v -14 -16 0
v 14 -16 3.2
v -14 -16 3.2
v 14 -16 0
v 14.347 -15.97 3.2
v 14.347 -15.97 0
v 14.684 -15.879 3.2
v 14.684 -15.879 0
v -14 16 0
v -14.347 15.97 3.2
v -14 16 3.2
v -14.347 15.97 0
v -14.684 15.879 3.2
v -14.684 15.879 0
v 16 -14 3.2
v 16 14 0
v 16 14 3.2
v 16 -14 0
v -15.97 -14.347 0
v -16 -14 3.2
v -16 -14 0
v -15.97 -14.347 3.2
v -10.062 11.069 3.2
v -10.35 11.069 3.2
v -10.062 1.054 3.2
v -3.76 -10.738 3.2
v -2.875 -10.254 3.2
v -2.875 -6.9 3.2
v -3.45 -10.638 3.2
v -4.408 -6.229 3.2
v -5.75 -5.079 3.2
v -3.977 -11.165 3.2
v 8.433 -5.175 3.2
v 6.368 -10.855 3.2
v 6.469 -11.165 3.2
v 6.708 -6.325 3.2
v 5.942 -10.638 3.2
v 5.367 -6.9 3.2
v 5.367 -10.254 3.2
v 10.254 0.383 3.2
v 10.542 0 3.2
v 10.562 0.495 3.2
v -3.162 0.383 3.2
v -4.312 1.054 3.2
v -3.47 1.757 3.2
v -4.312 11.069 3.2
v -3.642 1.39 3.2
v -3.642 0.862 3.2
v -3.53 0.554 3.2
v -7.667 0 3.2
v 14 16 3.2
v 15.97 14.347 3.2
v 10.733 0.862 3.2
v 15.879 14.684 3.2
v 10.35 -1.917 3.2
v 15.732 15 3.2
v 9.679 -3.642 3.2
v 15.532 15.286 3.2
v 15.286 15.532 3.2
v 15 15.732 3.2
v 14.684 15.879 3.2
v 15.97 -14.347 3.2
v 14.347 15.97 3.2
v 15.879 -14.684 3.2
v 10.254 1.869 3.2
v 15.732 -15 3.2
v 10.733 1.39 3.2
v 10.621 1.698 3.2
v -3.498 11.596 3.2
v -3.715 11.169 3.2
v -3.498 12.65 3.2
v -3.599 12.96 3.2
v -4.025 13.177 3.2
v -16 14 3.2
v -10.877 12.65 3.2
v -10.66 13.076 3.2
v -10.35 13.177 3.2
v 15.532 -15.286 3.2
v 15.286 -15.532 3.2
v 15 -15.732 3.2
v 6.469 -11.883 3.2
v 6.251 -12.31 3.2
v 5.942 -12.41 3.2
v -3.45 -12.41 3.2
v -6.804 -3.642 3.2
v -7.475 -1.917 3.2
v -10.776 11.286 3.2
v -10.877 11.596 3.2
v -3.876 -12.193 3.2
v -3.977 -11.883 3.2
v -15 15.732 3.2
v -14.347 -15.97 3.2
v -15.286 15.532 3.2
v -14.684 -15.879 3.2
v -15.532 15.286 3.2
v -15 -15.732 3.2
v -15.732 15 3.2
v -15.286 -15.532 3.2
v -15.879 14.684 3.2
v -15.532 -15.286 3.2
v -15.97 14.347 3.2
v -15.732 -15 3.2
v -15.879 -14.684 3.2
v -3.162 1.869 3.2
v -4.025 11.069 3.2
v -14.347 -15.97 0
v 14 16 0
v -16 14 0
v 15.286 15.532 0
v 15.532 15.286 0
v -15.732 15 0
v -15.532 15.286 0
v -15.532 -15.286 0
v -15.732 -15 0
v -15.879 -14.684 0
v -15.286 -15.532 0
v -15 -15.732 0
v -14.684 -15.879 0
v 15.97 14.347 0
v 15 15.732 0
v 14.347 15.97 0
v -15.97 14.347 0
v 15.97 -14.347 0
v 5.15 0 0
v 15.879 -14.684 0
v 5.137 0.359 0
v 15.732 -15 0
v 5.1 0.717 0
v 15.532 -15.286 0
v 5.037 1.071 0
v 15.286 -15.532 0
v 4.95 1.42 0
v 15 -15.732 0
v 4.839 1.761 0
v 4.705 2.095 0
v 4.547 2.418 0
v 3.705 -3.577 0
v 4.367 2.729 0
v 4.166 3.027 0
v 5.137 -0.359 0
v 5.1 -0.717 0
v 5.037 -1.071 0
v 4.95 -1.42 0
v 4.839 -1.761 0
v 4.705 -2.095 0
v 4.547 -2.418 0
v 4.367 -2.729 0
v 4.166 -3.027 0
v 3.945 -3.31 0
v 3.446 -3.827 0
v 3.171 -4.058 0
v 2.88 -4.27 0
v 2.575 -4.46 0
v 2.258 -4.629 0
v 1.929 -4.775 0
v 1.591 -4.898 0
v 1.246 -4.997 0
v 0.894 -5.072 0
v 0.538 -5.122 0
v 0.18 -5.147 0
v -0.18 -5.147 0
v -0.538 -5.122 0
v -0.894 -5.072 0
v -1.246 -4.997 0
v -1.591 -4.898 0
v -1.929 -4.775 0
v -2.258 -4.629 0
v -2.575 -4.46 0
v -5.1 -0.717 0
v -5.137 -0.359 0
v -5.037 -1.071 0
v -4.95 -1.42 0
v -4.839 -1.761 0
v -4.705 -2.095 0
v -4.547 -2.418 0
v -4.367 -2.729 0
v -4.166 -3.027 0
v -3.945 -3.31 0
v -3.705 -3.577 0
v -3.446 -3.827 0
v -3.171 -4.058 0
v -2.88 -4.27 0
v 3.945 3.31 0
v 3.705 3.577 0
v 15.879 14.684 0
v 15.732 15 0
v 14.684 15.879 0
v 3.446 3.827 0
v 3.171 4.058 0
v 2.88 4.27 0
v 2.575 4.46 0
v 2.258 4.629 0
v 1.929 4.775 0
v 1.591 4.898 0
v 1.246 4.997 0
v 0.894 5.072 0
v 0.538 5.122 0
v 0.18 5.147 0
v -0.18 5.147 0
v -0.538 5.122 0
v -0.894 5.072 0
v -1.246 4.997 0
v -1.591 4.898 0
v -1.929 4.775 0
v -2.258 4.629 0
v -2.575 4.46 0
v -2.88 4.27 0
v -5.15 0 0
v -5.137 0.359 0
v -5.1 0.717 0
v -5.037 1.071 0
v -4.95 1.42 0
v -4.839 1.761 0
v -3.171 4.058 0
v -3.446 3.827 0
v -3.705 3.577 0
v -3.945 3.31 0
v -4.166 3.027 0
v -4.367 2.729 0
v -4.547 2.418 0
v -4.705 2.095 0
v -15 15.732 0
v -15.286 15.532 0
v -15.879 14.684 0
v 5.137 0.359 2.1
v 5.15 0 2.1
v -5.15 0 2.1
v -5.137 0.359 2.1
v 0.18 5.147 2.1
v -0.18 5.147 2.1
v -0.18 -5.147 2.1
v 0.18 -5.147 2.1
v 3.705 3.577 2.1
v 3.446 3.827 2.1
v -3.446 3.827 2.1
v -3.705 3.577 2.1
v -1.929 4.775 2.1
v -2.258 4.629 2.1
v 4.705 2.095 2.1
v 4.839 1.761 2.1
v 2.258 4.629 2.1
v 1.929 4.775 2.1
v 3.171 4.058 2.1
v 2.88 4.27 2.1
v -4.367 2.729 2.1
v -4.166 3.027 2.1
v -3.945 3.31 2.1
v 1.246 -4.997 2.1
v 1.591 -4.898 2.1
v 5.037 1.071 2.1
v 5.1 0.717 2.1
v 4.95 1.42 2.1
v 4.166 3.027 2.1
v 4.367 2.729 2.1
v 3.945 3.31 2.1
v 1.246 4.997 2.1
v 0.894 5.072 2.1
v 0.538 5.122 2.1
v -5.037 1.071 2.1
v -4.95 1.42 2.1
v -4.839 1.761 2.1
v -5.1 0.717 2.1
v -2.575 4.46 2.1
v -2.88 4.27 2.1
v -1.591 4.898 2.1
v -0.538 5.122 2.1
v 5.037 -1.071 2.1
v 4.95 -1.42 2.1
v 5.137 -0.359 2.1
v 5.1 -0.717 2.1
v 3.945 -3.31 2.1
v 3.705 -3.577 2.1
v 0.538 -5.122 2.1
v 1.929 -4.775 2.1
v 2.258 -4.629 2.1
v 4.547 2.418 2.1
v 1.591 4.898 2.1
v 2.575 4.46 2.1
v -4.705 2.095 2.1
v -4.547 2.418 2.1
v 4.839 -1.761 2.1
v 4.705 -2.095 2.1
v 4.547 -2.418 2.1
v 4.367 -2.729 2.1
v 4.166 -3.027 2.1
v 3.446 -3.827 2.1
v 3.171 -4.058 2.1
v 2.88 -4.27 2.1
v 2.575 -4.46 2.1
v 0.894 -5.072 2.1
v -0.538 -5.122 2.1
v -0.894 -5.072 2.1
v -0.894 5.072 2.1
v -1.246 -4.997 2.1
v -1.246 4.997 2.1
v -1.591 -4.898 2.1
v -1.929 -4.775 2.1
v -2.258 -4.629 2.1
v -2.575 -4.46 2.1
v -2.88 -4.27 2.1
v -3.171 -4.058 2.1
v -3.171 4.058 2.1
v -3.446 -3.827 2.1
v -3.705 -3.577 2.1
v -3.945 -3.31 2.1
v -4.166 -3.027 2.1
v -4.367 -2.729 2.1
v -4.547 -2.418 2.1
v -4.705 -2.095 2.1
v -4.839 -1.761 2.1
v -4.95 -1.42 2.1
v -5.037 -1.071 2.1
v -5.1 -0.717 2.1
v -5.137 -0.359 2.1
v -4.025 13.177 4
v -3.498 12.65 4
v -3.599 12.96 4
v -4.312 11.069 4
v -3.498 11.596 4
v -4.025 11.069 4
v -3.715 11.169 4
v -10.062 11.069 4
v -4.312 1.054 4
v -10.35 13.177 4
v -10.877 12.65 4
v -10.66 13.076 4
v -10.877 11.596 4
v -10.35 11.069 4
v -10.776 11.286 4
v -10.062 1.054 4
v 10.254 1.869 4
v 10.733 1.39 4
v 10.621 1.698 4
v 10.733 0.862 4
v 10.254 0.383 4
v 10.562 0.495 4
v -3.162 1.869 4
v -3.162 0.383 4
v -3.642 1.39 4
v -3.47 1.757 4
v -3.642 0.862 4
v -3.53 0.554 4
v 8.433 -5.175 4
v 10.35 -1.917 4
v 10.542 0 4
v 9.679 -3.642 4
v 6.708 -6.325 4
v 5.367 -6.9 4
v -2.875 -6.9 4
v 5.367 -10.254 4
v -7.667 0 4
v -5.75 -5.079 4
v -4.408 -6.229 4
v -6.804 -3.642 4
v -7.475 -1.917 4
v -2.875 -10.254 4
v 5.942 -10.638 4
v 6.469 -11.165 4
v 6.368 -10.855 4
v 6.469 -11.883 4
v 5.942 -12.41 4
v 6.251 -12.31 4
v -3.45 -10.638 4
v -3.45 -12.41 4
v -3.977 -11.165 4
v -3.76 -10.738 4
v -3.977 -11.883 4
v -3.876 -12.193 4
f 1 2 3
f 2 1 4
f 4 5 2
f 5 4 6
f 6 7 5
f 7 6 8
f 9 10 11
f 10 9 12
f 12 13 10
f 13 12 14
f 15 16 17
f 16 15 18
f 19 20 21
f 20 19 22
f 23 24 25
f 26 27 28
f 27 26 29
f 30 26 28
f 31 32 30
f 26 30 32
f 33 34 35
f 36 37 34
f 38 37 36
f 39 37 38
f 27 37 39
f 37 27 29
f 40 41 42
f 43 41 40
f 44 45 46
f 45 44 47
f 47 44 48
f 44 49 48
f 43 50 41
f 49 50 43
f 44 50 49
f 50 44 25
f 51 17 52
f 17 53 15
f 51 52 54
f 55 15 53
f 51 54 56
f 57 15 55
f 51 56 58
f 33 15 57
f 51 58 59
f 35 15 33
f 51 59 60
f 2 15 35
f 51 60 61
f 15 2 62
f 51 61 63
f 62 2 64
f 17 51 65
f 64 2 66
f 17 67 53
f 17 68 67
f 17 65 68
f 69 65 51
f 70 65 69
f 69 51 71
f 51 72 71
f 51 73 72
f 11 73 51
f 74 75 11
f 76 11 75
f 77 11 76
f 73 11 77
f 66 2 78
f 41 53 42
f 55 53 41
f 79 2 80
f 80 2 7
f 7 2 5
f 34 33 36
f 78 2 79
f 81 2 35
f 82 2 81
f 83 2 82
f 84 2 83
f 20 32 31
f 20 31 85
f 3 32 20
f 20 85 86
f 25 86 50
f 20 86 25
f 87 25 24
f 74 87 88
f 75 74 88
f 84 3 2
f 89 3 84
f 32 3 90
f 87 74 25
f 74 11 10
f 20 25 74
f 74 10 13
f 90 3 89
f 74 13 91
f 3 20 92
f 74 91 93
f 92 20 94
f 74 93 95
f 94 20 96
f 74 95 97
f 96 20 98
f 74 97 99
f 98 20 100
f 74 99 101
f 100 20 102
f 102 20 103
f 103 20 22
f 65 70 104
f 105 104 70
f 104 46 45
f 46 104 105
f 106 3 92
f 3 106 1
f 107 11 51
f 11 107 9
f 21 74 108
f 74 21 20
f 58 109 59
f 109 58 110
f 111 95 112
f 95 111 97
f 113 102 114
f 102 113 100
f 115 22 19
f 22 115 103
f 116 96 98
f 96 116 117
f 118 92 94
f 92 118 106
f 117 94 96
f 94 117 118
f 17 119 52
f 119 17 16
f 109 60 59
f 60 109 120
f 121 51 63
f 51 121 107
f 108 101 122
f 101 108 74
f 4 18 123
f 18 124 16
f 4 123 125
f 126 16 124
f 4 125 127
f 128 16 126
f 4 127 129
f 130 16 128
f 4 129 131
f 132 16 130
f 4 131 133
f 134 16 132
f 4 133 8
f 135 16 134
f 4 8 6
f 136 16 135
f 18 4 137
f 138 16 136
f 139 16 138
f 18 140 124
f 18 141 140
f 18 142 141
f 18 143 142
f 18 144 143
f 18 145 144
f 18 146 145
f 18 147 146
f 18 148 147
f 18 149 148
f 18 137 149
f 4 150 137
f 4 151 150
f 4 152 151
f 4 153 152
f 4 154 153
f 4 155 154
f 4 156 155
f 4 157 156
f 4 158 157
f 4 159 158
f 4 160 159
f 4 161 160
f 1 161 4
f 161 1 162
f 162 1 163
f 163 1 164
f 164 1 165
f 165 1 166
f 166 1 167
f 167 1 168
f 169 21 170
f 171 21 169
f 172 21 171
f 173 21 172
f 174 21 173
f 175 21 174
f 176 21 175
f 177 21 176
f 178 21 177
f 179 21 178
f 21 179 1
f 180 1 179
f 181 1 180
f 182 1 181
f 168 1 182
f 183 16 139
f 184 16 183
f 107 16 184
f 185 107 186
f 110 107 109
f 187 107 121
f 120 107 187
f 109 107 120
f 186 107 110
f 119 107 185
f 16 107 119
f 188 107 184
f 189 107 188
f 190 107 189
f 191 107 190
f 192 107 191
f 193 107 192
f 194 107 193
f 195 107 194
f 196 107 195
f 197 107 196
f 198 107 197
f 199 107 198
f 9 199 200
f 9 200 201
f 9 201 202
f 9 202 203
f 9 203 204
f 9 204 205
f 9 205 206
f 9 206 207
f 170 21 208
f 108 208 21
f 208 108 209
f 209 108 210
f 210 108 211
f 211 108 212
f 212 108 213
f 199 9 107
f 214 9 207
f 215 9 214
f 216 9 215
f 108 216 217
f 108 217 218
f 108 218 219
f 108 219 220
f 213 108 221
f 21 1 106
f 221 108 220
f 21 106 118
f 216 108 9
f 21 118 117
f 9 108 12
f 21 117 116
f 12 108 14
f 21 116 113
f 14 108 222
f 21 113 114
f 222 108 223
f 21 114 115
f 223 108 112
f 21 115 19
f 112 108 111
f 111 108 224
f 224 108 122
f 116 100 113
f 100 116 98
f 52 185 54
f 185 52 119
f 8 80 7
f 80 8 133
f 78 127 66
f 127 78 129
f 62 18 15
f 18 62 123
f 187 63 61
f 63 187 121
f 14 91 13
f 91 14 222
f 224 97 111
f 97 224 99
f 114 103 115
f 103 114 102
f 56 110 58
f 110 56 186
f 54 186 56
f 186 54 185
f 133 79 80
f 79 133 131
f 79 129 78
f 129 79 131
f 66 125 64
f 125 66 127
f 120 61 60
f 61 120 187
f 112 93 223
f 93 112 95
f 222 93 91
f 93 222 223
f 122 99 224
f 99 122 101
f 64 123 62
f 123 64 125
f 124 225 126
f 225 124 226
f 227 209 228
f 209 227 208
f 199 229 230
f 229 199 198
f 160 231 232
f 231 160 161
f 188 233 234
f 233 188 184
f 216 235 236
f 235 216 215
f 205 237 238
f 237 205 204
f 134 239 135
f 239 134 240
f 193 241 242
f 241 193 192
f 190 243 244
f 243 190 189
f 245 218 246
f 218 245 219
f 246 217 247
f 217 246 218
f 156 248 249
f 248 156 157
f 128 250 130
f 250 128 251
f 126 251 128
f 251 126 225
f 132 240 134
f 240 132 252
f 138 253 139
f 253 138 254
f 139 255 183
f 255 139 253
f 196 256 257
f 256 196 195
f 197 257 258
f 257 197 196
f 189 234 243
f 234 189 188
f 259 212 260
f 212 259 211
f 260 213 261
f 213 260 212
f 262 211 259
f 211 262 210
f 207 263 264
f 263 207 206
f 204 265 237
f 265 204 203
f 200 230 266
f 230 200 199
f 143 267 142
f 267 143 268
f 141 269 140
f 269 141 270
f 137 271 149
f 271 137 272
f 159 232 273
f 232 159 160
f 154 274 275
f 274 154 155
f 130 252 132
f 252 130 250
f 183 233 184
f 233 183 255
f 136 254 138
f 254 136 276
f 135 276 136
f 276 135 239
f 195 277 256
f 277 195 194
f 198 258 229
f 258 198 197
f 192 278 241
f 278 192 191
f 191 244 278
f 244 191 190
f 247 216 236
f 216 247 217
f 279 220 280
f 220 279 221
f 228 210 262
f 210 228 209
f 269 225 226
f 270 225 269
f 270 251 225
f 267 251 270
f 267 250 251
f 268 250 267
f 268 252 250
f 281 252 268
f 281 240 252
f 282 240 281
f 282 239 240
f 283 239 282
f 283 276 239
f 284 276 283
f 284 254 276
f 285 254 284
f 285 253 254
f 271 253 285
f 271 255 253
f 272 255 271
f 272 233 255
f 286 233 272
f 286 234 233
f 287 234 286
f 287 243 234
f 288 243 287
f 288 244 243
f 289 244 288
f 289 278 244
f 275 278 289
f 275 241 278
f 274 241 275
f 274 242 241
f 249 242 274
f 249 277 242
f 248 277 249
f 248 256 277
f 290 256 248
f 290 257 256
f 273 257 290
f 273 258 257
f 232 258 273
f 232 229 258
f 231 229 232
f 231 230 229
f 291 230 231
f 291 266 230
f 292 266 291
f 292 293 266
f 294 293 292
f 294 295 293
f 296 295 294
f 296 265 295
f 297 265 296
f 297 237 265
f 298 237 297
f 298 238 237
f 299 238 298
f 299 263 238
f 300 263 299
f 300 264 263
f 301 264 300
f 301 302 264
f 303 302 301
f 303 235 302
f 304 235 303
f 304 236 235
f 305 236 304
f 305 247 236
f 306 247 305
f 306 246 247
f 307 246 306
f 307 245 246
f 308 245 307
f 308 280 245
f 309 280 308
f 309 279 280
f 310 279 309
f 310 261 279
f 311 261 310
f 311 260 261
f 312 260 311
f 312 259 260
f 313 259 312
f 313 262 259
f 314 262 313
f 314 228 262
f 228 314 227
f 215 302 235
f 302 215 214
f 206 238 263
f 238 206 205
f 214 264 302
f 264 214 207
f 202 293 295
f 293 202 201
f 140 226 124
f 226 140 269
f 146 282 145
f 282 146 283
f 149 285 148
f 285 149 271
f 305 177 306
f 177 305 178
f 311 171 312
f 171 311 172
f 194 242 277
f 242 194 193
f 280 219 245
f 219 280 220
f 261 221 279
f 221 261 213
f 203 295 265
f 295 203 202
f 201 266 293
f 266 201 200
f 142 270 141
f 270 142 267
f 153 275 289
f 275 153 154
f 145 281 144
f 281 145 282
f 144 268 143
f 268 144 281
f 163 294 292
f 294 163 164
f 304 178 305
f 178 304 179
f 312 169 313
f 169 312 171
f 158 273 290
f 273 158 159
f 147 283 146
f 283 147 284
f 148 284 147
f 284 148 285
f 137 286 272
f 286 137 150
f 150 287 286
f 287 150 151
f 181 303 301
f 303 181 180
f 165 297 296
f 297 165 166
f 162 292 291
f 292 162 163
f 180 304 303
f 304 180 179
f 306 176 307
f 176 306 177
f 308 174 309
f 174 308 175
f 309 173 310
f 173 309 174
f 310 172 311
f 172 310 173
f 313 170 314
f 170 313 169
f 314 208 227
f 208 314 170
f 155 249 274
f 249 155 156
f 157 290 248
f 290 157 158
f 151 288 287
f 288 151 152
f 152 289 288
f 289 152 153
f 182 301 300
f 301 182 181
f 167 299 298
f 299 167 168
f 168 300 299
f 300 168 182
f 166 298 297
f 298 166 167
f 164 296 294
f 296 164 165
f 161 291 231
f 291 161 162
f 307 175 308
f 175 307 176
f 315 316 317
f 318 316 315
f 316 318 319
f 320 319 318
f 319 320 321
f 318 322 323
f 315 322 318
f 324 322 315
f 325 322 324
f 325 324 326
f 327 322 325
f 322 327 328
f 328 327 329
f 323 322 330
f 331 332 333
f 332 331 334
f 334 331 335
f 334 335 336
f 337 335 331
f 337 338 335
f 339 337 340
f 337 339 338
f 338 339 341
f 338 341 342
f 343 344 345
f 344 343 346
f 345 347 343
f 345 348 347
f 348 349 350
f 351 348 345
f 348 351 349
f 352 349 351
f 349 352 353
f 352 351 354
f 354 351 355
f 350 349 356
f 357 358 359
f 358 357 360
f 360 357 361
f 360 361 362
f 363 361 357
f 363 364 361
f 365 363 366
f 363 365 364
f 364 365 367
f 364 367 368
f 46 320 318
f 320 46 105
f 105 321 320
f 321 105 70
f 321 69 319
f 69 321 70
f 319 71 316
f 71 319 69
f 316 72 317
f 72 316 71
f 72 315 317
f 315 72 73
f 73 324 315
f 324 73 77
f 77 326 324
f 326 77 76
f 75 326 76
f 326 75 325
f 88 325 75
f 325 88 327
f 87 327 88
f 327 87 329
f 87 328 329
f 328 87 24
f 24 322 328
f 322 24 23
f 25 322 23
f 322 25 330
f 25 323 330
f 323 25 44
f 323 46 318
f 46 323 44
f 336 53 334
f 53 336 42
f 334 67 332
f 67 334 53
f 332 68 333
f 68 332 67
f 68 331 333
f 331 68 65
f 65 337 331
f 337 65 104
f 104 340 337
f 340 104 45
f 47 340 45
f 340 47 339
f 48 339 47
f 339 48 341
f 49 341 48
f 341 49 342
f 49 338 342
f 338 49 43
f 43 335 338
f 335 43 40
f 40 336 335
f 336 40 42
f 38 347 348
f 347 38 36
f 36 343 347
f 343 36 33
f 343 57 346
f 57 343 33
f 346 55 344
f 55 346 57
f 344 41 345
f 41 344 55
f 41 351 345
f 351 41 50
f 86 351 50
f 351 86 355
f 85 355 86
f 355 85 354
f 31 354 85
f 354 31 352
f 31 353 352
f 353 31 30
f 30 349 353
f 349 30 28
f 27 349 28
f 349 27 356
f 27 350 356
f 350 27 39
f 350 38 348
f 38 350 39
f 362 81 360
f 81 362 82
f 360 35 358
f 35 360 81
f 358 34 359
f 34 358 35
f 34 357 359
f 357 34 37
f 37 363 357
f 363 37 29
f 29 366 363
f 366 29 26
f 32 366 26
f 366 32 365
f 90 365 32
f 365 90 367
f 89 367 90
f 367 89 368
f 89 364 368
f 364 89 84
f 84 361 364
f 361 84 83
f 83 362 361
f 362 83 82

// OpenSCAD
// Toilet chore magnet: print flat with the icon facing up.
// Dimensions are in mm. The back recess is intended for a glued-in disc magnet.

/* [Tile] */
tile_size = 32;          // Square width and height
tile_thickness = 3.2;
corner_radius = 2;
icon_height = 0.8;       // Raised above the front face
icon_size = 23;          // Overall width of the icon

/* [Magnet] */
magnet_diameter = 10;    // Actual nominal disc diameter
magnet_thickness = 2;    // Actual nominal disc thickness
pocket_diameter_clearance = 0.3; // Total diameter clearance, for glue
pocket_depth_clearance = 0.1;    // Extra depth to keep magnet below the back

/* [Hidden] */
eps = 0.02;
pocket_diameter = magnet_diameter + pocket_diameter_clearance;
pocket_depth = magnet_thickness + pocket_depth_clearance;
$fa = 4;
$fs = 0.35;

assert(tile_size > 0 && tile_thickness > 0 && icon_height > 0, "Tile and icon dimensions must be positive.");
assert(corner_radius >= 0 && corner_radius < tile_size/2, "Corner radius must be less than half the tile size.");
assert(icon_size > 0 && icon_size <= tile_size - 2, "Icon must fit inside the tile with a margin.");
assert(magnet_diameter > 0 && magnet_thickness > 0 && pocket_diameter_clearance >= 0 && pocket_depth_clearance >= 0, "Magnet dimensions must be positive and clearances nonnegative.");
assert(pocket_diameter < tile_size - 2*corner_radius, "Magnet pocket is too wide for the tile.");
assert(pocket_depth <= tile_thickness - 0.8, "Increase tile thickness to leave at least 0.8 mm above the magnet pocket.");

module rounded_square(size, radius) {
    if (radius == 0) square([size, size], center=true);
    else offset(r=radius) square([size-2*radius, size-2*radius], center=true);
}

// The icon uses a 24 x 24 coordinate system and independent raised regions.
module toilet_icon() {
    scale([icon_size/24, icon_size/24]) union() {
        // Cistern and its slightly overhanging lid.
        translate([-10.5, 1.1]) square([6, 11]);
        translate([-10.8, 12.1]) offset(r=0.55) square([6.6, 1.1]);
        // Seat and bowl, with a visible gap between them.
        translate([-3.3, 0.9]) offset(r=0.5) square([14.0, 0.55]);
        polygon(points=[[-4.2,0], [11,0], [10.8,-2.0], [10.1,-3.8],
            [8.8,-5.4], [7,-6.6], [5.6,-7.2], [5.6,-10.7],
            [-3,-10.7], [-3,-7.2], [-4.6,-6.5], [-6,-5.3],
            [-7.1,-3.8], [-7.8,-2], [-8,0]]);
        // Foot of the pedestal.
        translate([-3.6,-12.4]) offset(r=0.55) square([9.8,0.75]);
    }
}

union() {
    difference() {
        linear_extrude(height=tile_thickness) rounded_square(tile_size, corner_radius);
        translate([0,0,-eps]) cylinder(h=pocket_depth+eps, d=pocket_diameter);
    }
    translate([0,0,tile_thickness-eps])
        linear_extrude(height=icon_height+eps) toilet_icon();
}
